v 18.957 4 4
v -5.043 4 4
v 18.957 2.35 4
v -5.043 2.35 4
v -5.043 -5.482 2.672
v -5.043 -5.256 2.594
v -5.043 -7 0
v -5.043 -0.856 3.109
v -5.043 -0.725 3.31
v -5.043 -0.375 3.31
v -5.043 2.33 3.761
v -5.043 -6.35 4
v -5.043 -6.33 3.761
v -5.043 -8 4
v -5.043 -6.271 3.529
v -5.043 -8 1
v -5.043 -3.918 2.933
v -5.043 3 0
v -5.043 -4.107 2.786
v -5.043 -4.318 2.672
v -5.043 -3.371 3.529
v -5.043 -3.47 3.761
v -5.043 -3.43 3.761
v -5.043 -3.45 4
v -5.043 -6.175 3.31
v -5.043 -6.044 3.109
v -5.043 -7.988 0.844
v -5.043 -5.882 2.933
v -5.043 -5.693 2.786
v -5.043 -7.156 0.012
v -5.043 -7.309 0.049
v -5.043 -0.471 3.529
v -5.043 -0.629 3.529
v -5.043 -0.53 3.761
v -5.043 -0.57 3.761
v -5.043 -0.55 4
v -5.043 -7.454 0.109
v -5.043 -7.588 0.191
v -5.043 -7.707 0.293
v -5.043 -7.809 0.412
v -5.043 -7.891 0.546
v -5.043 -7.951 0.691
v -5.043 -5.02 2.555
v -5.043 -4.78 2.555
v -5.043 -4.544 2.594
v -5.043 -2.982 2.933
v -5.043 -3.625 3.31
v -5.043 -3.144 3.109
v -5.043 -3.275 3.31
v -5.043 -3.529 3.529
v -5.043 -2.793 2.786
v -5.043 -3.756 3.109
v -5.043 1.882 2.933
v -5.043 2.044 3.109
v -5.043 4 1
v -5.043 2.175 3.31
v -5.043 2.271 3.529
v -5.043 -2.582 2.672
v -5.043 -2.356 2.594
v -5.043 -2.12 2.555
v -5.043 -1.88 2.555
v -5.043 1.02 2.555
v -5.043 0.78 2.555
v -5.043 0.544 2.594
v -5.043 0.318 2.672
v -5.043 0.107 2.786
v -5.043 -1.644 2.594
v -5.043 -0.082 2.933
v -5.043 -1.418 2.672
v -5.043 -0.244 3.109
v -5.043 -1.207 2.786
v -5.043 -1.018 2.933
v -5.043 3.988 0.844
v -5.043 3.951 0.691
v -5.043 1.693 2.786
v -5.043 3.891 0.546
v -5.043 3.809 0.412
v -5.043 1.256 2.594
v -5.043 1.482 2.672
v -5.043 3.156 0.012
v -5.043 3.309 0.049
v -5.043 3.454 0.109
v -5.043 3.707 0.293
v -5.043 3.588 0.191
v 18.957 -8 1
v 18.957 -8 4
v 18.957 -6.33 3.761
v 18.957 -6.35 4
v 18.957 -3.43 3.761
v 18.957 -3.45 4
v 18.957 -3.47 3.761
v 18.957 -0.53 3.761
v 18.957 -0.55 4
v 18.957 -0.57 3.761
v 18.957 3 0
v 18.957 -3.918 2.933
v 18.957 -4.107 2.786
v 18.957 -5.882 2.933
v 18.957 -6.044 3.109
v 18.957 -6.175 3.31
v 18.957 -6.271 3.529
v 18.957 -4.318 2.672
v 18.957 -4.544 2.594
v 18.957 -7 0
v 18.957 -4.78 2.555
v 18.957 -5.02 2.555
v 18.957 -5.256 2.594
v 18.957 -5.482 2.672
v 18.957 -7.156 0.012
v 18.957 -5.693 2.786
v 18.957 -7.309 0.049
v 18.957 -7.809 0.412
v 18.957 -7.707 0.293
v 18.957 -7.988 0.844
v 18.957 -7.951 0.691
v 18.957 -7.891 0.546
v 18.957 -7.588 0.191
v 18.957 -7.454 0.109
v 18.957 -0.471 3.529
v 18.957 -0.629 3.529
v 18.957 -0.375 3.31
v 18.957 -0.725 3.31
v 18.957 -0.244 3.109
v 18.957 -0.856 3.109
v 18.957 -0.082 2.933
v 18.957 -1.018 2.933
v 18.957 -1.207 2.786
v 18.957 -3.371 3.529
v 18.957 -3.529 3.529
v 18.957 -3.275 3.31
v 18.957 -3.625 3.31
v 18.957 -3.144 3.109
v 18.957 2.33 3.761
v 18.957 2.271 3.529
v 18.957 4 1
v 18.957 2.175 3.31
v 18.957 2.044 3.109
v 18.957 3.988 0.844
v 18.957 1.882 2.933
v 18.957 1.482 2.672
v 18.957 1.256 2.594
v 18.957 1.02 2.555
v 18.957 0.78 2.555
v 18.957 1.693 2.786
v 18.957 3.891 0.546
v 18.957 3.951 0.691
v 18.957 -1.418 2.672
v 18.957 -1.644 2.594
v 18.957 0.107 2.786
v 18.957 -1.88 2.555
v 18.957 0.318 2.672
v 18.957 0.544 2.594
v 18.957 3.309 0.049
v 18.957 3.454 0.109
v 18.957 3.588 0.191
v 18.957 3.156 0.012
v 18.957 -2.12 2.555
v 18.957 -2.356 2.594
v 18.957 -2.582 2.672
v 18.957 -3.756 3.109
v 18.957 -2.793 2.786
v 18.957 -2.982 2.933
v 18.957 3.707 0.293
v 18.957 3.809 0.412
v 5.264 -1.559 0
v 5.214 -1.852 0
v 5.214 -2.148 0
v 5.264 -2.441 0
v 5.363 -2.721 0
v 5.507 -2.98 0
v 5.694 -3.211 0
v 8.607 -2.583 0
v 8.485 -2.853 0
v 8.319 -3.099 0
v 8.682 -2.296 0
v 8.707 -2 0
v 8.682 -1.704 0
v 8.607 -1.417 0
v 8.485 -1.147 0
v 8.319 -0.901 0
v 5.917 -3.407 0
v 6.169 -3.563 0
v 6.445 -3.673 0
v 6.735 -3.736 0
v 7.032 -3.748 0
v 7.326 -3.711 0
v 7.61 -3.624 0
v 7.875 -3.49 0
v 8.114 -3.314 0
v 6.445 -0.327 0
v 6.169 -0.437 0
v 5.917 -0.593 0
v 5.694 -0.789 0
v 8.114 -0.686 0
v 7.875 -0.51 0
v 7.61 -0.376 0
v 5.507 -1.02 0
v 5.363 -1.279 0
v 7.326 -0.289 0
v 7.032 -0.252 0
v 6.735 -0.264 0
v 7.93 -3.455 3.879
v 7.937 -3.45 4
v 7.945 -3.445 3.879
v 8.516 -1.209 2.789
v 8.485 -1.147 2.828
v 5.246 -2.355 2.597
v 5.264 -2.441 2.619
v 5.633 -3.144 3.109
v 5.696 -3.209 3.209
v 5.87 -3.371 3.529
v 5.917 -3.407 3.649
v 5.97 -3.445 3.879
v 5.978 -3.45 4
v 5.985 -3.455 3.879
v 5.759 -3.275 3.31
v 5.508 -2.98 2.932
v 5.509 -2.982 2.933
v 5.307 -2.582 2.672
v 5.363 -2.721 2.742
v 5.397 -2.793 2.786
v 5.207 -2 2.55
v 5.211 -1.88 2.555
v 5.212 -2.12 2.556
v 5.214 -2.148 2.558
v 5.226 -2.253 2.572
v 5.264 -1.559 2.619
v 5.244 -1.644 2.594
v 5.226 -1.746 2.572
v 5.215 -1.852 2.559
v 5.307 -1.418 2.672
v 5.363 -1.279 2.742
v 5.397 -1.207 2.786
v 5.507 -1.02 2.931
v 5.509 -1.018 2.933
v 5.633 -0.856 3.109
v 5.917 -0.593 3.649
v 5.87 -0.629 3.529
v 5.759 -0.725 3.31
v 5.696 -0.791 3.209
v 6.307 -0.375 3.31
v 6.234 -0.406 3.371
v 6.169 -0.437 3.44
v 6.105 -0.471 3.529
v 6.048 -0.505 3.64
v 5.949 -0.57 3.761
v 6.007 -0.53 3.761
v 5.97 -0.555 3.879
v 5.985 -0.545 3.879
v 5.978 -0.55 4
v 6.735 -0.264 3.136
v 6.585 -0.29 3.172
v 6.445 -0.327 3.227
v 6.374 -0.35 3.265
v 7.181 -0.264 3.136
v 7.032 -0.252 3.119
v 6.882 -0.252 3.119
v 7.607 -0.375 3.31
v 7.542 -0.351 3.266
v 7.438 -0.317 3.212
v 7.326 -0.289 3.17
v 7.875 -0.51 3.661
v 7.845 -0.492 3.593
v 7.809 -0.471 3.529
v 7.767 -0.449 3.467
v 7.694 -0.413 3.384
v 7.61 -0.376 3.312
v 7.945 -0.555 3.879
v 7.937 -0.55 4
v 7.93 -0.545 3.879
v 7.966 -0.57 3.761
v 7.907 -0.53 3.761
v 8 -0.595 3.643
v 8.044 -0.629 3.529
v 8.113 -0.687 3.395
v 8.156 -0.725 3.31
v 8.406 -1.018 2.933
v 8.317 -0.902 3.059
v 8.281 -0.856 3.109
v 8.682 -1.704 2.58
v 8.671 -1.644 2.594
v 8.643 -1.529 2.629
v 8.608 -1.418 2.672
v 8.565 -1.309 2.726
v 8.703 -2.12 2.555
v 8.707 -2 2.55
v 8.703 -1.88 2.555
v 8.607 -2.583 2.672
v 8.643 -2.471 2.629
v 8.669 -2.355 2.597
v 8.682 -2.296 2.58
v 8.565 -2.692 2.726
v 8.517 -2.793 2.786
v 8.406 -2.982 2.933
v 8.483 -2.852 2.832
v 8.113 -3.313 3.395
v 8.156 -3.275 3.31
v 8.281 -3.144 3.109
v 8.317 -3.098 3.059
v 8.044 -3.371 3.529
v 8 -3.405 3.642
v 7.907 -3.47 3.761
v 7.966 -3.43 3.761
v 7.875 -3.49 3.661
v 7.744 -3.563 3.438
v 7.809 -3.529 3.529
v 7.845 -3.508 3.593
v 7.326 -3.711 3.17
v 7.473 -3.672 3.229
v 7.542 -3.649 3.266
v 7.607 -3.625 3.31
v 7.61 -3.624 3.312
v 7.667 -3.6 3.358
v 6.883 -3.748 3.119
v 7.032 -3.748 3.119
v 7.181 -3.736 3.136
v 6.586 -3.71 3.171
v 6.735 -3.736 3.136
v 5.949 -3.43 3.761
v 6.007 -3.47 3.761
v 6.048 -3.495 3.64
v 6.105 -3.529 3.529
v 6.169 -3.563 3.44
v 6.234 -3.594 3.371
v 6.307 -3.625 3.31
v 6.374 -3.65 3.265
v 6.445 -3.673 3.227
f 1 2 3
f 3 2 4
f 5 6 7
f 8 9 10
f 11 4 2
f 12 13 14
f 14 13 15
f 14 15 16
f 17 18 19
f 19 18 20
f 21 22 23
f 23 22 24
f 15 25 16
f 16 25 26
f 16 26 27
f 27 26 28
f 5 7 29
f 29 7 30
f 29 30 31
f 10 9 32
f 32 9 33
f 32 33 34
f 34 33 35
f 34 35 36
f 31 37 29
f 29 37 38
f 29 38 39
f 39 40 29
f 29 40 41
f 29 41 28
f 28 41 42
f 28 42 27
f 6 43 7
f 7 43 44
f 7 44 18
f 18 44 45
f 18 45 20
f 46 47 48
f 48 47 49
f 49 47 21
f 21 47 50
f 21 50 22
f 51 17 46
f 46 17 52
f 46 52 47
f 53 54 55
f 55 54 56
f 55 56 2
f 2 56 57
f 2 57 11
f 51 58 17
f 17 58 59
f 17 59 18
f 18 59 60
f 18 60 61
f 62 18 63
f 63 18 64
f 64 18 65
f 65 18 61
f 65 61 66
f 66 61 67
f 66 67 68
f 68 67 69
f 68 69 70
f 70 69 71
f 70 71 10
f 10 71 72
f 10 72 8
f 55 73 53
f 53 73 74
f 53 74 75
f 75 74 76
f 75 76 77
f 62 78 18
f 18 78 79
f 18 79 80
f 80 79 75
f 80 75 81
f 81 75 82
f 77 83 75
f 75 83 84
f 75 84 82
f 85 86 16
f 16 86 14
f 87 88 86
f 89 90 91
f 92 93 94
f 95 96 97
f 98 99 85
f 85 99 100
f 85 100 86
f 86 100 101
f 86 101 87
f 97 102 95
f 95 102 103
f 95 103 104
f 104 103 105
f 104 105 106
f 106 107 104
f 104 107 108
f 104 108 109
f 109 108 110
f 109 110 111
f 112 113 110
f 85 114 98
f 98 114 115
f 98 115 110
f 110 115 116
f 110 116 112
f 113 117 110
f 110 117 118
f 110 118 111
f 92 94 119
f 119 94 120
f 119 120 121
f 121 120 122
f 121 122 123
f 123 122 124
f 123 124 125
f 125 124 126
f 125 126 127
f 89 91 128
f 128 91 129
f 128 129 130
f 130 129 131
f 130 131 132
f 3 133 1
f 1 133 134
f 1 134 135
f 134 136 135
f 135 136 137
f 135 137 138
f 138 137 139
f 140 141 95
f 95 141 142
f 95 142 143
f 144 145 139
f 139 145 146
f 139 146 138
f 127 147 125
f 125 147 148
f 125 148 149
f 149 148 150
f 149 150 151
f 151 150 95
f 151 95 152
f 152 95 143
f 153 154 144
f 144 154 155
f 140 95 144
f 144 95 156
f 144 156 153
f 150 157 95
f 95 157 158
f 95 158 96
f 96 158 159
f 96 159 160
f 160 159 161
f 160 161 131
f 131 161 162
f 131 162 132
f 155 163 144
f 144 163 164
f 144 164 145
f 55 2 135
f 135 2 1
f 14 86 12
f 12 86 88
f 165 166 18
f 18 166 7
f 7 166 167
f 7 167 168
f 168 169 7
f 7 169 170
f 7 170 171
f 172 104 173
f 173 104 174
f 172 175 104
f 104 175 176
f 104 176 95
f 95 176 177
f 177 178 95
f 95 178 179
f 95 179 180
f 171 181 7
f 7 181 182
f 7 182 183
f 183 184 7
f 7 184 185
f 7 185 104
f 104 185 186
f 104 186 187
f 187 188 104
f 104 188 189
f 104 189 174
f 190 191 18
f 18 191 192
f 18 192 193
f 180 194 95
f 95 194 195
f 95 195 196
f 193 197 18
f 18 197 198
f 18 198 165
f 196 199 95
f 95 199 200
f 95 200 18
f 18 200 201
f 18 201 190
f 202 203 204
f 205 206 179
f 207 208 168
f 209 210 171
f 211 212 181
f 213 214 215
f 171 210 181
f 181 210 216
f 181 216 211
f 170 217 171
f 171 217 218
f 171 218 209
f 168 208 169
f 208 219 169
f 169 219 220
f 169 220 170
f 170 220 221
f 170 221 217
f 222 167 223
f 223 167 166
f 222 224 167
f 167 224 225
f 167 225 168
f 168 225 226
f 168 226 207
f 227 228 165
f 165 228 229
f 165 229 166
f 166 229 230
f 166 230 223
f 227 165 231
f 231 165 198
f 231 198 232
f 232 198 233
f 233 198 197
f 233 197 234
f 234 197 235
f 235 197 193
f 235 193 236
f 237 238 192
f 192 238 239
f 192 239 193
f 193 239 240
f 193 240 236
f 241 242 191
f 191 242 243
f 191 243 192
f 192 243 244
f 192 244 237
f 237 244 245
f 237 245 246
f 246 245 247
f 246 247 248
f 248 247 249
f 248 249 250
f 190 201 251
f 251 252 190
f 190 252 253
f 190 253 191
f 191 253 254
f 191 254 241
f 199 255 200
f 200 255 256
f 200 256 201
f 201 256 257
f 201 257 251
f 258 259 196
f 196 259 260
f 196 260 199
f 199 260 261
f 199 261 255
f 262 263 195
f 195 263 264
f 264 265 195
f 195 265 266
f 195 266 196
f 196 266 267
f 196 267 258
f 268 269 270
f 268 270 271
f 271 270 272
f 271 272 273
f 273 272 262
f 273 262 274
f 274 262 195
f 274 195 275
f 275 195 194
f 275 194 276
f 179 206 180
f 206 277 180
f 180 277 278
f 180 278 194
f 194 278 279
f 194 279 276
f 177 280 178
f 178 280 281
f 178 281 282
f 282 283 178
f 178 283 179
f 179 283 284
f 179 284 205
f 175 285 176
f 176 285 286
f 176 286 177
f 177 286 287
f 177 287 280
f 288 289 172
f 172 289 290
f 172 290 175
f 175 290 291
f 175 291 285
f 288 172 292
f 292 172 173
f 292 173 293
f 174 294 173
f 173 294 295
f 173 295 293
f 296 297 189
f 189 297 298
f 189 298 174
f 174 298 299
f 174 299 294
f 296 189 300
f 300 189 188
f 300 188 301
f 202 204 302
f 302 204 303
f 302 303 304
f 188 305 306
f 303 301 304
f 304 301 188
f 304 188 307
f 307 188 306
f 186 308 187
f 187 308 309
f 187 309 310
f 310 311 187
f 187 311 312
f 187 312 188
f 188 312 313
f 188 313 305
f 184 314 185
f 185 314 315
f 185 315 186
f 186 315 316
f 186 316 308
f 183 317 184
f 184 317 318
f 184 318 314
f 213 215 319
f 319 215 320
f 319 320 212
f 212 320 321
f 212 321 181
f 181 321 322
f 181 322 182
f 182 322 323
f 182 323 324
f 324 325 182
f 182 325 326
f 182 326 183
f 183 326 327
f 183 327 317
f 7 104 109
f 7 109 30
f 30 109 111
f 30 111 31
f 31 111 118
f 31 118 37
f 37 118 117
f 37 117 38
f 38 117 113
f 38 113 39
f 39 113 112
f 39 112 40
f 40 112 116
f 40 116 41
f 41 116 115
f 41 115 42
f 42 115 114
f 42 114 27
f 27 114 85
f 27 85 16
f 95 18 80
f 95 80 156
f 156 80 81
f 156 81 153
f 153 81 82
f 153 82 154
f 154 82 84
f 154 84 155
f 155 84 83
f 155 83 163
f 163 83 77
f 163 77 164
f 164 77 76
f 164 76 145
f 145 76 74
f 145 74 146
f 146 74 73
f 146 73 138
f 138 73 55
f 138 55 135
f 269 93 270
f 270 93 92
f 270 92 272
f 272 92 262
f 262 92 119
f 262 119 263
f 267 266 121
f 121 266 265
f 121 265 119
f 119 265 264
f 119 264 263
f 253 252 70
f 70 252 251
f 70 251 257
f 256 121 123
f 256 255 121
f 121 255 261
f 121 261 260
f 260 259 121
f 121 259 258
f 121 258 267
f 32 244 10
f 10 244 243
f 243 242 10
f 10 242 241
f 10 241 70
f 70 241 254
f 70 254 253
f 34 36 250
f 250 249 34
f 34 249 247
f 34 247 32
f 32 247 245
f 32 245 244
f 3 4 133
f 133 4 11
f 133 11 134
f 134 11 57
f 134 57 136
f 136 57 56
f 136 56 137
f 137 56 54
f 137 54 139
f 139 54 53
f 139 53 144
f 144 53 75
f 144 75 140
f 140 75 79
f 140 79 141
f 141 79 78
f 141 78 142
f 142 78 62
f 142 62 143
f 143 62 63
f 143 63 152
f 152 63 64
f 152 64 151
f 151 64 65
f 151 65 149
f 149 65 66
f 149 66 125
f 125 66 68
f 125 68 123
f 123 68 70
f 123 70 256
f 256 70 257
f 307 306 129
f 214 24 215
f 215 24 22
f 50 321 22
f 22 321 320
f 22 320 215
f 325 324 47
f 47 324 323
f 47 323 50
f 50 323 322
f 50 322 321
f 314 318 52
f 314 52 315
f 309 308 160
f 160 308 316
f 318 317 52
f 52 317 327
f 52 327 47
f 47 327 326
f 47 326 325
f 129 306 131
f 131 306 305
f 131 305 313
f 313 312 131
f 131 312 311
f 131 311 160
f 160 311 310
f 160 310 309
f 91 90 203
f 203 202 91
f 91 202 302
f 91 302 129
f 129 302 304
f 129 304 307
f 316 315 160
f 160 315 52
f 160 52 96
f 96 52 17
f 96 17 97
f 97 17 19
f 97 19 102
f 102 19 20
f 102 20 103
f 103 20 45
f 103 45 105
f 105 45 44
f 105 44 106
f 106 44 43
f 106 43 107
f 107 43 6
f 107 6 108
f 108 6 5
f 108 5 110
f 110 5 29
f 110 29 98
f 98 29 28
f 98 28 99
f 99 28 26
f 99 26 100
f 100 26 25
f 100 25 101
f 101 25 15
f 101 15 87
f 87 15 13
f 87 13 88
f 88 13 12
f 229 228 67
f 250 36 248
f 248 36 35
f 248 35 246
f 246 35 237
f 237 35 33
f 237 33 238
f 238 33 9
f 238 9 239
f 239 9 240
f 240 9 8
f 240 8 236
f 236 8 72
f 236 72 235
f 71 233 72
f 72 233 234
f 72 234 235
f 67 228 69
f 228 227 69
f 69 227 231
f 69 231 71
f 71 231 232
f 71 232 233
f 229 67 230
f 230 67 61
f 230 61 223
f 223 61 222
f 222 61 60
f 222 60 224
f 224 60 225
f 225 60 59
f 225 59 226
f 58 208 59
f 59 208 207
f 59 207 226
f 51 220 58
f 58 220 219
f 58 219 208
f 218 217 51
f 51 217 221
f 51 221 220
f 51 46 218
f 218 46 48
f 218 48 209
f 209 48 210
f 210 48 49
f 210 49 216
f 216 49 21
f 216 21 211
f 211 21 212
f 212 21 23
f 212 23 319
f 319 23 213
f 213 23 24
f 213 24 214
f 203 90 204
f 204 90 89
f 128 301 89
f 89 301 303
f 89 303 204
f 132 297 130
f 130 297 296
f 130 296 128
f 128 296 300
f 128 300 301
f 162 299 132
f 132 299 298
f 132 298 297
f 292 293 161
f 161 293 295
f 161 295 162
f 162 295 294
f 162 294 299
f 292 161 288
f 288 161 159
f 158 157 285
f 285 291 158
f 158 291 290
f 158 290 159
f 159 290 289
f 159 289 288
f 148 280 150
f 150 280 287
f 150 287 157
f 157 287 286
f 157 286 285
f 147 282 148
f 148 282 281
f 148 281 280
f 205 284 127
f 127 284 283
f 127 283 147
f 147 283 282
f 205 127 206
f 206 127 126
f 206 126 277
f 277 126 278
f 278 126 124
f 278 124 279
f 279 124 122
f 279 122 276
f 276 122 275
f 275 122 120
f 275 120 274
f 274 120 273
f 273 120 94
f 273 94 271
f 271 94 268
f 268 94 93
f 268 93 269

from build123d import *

# Parameters (mm, degrees)
SKETCH2_W           = 24
SKETCH2_H           = 12
BOSS_EXTRUDE1_DEPTH = 4
SKETCH3_R           = 1.75
CUT_EXTRUDE1_DEPTH  = 5
FILLET1_R           = 1
CUT_EXTRUDE2_DEPTH  = 32


with BuildPart() as part:
    # Sketch2 → Boss-Extrude1 (new body)
    with BuildSketch(Plane.XY):
        with Locations((6.957345972, -2)):
            Rectangle(SKETCH2_W, SKETCH2_H)
    extrude(amount=BOSS_EXTRUDE1_DEPTH)

    # Sketch3 → Cut-Extrude1 (cut)
    with BuildSketch(Plane.XY.offset(4)):
        with Locations((6.957345972, -2)):
            Circle(SKETCH3_R)
    extrude(amount=-CUT_EXTRUDE1_DEPTH, mode=Mode.SUBTRACT)

    # Fillet1
    fillet1_edges = [part.edges().sort_by_distance(p)[0] for p in [
        (6.957345972, 4, 0),
        (6.957345972, -8, 0),
    ]]
    fillet(fillet1_edges, radius=FILLET1_R)

    # Sketch4 → Cut-Extrude2 (cut)
    with BuildSketch(Plane.ZY.offset(5.042654028)):
        with BuildLine():
            ThreePointArc((5.45, -4.9), (5.025304833, -3.874695167), (4, -3.45))
            Line((4, -3.45), (4, -6.35))
            ThreePointArc((4, -6.35), (5.025304833, -5.925304833), (5.45, -4.9))
        make_face()
        with BuildLine():
            Line((4, -6.35), (4, -3.45))
            ThreePointArc((4, -3.45), (2.55, -4.9), (4, -6.35))
        make_face()
        with BuildLine():
            ThreePointArc((4, -3.45), (5.025304833, -3.025304833), (5.45, -2))
            ThreePointArc((5.45, -2), (5.025304833, -0.974695167), (4, -0.55))
            Line((4, -0.55), (4, -3.45))
        make_face()
        with BuildLine():
            Line((4, -3.45), (4, -0.55))
            ThreePointArc((4, -0.55), (2.55, -2), (4, -3.45))
        make_face()
        with BuildLine():
            ThreePointArc((4, 2.35), (2.55, 0.9), (4, -0.55))
            Line((4, -0.55), (4, 2.35))
        make_face()
        with BuildLine():
            Line((4, 2.35), (4, -0.55))
            ThreePointArc((4, -0.55), (5.025304833, -0.125304833), (5.45, 0.9))
            ThreePointArc((5.45, 0.9), (5.025304833, 1.925304833), (4, 2.35))
        make_face()
    extrude(amount=-CUT_EXTRUDE2_DEPTH, mode=Mode.SUBTRACT)


solid = part.part
